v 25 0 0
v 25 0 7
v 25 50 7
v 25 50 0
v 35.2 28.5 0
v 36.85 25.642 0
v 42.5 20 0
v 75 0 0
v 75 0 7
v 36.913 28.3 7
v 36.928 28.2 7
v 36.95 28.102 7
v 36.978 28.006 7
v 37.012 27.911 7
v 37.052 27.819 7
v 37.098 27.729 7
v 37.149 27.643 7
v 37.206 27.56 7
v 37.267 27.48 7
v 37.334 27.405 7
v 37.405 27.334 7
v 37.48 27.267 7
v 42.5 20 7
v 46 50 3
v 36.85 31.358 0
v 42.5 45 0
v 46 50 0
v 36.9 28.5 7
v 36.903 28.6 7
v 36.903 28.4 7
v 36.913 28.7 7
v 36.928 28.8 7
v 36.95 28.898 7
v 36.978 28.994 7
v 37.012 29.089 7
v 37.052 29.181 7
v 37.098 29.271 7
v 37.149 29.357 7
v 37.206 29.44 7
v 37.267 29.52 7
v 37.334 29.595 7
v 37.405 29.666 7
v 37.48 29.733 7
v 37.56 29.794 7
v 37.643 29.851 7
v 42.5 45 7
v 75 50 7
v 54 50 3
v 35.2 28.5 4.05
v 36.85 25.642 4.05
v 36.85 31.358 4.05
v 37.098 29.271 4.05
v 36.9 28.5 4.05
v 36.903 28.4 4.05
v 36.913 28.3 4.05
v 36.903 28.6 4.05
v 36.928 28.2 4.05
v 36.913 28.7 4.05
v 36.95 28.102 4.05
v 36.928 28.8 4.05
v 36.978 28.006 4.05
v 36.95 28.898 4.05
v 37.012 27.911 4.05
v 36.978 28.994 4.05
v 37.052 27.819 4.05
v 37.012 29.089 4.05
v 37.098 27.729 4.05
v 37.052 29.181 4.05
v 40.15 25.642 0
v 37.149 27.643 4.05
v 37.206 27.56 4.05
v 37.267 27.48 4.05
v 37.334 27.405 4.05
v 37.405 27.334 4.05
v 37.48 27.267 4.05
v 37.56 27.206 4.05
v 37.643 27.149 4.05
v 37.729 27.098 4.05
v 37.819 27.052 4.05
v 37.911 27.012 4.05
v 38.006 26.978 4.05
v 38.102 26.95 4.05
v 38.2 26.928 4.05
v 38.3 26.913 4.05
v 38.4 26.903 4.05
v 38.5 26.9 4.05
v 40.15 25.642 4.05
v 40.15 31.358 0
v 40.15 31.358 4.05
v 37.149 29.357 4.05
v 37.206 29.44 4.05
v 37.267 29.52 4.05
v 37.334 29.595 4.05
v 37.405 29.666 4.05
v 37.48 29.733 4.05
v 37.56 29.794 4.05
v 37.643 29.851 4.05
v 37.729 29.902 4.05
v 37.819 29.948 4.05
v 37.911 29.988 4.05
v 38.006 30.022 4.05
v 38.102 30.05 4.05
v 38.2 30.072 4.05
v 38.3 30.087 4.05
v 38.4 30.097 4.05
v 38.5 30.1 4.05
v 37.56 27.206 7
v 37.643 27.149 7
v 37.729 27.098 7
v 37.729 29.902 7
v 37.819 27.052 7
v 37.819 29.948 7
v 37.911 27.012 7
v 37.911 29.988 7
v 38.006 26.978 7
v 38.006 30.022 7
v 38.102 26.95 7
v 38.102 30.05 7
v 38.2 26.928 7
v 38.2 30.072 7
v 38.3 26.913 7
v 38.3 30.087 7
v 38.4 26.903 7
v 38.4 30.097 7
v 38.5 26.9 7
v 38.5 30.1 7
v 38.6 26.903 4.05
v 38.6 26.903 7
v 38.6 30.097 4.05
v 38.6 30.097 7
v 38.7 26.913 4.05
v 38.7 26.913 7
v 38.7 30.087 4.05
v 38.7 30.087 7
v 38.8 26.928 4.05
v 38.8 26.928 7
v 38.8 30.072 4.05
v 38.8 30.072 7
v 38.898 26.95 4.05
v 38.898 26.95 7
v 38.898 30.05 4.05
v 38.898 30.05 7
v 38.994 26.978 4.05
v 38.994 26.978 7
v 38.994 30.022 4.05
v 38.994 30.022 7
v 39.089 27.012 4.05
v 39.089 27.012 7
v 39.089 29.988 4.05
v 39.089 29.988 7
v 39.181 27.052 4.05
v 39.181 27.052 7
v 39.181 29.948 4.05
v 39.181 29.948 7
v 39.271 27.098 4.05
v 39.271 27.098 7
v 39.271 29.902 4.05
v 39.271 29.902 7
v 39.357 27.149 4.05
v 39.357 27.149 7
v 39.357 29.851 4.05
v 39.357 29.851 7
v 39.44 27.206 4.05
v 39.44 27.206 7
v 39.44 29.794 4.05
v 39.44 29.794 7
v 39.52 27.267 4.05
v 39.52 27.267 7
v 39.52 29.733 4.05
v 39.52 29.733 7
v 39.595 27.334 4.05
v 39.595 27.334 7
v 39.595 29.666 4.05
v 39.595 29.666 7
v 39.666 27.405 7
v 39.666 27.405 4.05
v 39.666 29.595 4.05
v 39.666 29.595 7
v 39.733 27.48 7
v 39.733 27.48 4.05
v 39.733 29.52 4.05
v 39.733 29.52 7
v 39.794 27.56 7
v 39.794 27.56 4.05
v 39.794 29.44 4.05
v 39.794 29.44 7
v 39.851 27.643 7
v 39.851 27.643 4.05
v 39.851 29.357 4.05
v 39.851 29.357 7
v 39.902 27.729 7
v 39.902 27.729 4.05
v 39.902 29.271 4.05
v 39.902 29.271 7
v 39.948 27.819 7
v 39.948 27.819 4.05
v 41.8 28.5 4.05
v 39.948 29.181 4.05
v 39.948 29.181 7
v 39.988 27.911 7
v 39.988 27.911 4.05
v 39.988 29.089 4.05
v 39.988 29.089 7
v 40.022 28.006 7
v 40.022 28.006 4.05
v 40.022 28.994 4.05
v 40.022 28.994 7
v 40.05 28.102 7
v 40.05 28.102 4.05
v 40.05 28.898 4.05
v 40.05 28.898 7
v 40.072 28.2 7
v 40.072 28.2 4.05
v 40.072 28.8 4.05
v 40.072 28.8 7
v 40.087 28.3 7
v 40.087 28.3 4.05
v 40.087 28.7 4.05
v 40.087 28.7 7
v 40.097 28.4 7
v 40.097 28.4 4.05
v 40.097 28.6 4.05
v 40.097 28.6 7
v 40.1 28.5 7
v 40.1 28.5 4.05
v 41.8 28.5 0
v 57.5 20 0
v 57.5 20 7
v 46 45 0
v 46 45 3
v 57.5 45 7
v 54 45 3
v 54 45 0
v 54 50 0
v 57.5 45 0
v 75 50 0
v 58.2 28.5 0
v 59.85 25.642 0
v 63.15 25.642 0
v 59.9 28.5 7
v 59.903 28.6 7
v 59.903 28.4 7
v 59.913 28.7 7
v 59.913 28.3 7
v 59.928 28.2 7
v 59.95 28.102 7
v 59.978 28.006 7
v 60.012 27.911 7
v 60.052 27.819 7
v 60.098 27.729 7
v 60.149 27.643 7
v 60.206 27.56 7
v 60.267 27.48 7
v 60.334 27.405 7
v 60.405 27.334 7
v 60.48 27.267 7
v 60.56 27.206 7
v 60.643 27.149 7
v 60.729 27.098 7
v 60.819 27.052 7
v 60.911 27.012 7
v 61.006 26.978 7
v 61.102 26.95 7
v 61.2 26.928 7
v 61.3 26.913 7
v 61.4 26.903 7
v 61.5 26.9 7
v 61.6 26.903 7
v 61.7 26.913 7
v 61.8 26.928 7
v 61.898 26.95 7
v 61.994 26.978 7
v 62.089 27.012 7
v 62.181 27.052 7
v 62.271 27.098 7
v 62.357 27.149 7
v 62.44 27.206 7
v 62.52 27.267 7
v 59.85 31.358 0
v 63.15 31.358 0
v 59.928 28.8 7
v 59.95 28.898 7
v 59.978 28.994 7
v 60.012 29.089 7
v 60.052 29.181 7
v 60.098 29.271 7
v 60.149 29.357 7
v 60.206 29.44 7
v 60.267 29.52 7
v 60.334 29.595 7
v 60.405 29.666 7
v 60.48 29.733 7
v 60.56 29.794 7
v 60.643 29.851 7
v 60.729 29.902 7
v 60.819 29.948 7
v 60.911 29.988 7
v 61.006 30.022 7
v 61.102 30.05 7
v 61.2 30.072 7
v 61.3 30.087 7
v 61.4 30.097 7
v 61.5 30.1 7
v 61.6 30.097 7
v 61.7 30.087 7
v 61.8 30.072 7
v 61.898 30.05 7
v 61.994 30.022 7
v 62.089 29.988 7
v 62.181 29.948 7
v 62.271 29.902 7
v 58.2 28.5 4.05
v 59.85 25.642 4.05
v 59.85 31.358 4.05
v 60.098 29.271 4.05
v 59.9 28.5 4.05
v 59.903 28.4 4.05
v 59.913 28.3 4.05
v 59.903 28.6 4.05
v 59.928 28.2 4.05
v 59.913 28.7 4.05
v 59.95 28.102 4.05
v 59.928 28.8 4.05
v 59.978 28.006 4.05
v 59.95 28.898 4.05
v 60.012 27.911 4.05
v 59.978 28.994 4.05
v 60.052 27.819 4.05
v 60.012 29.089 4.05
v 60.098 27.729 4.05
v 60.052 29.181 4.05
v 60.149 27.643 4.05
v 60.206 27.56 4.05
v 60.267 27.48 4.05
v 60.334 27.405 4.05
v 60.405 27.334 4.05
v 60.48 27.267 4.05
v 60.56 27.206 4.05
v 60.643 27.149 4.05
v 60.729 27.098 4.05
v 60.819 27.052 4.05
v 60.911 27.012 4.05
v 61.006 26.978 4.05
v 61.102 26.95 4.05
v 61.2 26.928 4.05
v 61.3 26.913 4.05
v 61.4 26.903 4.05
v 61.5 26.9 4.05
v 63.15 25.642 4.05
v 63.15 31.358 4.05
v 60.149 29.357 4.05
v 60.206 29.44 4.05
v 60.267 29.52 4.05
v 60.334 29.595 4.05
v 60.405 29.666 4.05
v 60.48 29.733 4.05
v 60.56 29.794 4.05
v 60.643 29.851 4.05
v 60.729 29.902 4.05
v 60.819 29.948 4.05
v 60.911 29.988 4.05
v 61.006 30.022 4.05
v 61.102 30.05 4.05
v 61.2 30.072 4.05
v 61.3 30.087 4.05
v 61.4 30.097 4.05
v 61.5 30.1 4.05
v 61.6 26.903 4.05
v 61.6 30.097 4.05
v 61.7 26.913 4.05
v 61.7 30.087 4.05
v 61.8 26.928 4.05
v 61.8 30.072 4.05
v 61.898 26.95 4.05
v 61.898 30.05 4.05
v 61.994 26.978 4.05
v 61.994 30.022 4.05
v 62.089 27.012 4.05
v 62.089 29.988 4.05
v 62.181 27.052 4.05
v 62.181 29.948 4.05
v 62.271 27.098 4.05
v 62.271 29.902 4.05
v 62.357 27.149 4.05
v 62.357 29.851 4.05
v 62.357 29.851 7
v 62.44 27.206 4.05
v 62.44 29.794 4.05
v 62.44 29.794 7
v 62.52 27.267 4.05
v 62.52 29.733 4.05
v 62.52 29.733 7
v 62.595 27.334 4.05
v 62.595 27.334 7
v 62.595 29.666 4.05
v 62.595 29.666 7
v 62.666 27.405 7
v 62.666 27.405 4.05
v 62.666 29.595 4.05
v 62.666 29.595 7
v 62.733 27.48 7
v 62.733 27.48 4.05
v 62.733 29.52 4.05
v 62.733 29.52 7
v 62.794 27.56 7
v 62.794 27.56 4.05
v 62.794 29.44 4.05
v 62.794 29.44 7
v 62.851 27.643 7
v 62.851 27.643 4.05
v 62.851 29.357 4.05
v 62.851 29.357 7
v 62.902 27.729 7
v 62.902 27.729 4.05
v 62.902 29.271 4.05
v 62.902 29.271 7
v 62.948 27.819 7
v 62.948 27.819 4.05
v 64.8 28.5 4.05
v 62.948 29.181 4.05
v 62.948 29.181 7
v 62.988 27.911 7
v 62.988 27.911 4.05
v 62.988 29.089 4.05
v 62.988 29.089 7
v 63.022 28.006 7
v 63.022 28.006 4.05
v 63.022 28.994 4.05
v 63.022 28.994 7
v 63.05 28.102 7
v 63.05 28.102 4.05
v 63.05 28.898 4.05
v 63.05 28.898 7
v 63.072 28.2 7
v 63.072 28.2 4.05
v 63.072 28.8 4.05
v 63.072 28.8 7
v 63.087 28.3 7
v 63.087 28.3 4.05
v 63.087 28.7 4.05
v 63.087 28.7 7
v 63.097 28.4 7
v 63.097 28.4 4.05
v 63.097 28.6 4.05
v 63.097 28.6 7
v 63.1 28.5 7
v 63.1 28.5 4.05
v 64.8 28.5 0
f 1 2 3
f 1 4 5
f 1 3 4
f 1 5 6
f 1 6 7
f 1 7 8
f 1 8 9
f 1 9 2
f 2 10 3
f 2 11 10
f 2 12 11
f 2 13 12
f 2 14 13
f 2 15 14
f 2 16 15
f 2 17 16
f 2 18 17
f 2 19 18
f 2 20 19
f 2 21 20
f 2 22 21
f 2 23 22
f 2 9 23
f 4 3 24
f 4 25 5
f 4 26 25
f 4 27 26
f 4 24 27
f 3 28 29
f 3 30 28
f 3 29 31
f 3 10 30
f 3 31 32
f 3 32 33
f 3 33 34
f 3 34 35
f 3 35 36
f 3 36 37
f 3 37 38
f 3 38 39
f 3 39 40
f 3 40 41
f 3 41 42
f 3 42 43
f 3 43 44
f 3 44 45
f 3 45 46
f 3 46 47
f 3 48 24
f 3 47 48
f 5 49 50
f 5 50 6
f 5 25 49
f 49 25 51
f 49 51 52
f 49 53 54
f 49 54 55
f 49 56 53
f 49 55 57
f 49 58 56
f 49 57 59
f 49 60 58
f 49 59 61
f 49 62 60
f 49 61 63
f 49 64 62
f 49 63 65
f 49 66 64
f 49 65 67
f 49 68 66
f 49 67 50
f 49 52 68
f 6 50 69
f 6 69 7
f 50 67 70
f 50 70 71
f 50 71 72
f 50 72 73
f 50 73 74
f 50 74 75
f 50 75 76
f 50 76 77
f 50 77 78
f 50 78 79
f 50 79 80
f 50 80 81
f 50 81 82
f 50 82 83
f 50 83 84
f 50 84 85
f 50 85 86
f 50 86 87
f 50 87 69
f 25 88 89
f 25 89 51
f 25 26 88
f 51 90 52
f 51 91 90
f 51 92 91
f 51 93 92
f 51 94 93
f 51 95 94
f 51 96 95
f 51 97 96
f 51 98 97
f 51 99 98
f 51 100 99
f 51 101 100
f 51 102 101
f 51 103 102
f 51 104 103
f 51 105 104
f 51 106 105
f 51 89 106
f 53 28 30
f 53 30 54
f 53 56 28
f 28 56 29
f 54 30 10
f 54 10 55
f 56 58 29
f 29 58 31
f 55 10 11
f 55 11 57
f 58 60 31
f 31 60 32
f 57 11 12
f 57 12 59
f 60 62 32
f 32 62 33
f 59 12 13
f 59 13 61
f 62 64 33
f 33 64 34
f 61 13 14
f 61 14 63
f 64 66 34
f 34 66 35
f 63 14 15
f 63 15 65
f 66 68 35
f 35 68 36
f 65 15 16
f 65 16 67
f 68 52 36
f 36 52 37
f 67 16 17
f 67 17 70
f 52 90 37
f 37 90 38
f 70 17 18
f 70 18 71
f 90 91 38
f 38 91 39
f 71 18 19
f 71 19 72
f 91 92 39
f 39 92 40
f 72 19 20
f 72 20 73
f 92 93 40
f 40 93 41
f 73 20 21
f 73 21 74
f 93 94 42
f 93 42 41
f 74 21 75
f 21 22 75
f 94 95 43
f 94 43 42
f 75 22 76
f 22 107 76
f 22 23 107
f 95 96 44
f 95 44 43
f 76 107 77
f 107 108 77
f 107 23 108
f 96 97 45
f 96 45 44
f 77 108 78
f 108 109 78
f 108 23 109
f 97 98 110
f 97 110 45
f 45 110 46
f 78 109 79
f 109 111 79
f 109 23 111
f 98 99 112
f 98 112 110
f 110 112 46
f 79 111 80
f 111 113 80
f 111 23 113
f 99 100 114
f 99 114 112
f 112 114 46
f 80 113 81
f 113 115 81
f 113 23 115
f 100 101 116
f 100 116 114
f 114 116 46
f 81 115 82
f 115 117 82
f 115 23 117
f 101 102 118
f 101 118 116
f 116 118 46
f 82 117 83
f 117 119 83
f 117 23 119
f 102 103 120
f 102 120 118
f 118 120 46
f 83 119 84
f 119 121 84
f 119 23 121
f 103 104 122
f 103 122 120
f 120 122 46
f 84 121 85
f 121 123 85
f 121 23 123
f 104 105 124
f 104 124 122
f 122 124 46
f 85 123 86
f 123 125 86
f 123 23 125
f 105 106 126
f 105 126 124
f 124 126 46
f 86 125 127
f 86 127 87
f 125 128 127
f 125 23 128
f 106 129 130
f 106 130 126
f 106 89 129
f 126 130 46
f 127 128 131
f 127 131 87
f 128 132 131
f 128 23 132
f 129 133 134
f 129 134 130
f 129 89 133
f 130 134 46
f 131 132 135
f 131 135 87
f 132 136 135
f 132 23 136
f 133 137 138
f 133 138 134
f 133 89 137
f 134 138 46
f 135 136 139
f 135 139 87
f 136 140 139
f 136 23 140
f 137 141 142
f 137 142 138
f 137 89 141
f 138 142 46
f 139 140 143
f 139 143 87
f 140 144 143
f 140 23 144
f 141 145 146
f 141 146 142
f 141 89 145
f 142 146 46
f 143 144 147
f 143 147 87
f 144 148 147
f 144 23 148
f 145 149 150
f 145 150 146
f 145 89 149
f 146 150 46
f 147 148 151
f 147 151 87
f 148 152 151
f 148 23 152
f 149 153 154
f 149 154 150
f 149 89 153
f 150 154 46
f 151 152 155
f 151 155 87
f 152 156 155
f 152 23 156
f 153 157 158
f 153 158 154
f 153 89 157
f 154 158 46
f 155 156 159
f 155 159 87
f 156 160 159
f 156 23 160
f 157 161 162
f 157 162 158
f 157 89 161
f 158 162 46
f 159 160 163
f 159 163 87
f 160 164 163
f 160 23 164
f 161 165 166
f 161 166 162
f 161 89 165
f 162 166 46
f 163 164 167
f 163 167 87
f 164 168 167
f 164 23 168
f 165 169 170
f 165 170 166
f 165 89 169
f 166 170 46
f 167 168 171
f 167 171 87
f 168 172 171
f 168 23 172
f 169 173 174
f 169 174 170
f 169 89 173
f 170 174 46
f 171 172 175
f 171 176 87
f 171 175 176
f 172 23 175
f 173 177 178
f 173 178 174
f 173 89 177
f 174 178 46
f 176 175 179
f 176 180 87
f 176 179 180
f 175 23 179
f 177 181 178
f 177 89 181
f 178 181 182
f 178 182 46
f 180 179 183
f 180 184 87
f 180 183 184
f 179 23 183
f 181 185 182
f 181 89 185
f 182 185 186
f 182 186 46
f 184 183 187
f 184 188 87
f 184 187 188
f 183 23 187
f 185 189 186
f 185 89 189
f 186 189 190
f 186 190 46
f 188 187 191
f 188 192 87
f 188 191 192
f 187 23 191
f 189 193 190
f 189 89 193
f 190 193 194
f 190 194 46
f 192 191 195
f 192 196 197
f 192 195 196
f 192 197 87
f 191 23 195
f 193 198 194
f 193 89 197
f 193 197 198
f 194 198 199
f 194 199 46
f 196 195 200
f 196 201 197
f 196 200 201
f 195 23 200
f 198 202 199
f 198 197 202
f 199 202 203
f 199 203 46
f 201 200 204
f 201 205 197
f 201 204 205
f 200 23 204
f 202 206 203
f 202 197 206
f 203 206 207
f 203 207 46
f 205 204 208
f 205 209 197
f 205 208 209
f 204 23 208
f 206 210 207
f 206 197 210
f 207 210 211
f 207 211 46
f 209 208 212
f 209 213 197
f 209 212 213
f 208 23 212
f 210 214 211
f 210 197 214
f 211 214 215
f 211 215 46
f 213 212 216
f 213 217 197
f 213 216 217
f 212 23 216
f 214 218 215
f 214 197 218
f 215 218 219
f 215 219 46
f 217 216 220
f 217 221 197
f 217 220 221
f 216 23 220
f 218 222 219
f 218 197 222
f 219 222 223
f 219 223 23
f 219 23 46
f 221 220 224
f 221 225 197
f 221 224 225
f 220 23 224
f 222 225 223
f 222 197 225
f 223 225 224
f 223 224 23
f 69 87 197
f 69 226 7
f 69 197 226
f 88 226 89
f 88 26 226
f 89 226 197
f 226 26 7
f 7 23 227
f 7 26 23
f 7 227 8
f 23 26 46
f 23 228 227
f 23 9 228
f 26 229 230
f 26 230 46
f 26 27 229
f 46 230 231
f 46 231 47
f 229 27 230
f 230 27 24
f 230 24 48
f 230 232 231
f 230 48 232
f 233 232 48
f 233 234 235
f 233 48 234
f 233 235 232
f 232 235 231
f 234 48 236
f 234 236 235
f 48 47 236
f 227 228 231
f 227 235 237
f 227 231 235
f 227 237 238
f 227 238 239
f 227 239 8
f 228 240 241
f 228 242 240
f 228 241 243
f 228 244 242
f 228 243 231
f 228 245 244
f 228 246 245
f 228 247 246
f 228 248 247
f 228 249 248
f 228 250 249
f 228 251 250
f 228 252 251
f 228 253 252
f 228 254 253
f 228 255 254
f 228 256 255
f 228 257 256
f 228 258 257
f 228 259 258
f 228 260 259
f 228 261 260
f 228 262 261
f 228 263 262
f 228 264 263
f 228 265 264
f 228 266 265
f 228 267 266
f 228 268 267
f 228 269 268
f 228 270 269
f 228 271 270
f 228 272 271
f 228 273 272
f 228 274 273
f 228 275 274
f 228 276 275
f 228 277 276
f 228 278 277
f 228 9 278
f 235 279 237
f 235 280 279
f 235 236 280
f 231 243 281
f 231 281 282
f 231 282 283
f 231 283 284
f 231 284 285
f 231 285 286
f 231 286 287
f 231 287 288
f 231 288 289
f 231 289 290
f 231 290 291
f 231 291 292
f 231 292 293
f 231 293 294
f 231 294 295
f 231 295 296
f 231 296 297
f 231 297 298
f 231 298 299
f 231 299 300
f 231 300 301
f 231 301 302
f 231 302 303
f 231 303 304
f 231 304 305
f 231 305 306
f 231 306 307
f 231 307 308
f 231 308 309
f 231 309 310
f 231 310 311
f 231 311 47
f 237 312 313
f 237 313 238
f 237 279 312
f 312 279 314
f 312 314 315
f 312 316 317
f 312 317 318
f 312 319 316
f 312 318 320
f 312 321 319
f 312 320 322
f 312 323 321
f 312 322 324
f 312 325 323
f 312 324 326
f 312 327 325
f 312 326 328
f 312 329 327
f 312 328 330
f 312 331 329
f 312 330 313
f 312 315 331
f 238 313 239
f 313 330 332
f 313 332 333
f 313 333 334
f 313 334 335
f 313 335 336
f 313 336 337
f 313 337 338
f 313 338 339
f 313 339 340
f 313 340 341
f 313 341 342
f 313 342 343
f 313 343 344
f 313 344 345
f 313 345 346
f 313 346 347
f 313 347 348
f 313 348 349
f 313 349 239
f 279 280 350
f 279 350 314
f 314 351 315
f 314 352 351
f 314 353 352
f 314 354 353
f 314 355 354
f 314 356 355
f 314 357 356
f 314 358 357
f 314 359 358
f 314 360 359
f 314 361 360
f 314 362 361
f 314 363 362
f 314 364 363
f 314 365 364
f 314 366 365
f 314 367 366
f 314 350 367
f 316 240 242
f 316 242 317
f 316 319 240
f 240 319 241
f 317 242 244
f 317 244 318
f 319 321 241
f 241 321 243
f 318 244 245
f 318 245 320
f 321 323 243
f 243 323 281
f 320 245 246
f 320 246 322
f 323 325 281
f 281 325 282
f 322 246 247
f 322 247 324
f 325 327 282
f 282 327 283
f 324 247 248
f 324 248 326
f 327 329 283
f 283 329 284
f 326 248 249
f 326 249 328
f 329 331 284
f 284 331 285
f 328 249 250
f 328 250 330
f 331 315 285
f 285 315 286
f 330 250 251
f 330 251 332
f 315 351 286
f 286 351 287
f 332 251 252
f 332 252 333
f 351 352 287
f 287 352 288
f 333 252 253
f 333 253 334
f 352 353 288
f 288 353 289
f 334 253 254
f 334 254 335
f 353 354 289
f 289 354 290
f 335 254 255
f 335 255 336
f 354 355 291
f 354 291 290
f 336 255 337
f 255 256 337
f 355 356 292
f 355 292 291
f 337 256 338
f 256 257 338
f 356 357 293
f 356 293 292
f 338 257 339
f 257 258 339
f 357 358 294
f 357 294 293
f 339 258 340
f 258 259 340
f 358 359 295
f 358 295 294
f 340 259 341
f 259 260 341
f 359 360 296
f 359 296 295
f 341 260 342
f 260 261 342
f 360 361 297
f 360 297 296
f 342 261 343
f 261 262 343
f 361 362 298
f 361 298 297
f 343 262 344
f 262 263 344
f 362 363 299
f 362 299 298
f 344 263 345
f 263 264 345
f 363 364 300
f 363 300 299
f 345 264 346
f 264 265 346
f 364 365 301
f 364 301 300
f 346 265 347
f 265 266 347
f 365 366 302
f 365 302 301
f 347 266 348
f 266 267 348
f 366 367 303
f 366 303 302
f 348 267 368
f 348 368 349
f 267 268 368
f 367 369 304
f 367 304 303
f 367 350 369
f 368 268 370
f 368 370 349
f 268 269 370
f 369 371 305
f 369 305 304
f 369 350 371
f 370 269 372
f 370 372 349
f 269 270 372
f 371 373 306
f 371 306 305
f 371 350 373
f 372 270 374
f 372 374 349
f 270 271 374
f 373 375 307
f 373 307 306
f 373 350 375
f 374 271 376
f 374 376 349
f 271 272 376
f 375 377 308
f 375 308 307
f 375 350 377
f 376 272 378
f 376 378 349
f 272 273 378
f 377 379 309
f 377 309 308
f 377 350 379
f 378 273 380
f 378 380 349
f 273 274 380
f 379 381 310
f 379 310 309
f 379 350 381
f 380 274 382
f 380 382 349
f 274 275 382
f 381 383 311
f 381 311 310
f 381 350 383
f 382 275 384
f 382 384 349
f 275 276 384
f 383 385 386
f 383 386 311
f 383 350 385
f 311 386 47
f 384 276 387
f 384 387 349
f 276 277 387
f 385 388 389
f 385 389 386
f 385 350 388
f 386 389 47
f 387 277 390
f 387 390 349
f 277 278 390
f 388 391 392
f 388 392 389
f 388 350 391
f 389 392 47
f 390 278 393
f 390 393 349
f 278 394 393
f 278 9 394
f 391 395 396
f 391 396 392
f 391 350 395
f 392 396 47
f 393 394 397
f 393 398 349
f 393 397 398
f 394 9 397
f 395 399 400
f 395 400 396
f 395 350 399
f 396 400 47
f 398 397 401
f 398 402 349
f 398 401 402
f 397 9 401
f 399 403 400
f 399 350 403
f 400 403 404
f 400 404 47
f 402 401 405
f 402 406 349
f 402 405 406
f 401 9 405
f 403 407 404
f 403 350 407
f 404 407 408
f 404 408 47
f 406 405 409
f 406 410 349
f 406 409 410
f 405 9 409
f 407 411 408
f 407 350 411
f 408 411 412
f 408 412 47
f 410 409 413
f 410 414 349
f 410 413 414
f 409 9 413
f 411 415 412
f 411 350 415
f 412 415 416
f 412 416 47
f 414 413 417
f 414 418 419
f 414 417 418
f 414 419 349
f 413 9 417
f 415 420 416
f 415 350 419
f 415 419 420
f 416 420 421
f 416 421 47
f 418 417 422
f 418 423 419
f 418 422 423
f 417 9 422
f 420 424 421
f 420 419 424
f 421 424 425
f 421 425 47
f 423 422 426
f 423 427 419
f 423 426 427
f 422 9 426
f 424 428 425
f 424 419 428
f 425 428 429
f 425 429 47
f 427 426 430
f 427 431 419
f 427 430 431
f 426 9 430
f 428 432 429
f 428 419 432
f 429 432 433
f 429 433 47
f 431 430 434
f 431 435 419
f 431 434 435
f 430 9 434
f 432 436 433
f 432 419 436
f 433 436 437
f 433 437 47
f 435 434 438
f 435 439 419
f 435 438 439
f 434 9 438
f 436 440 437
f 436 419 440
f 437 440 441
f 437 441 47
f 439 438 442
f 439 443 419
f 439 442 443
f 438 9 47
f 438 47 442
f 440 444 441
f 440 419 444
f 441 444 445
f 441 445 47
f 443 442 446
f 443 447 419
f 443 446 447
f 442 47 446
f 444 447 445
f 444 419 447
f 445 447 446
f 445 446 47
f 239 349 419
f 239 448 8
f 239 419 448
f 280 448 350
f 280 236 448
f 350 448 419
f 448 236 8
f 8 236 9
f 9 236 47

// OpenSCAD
include <../parameters.scad>

//podlozka

//velikost zakladny 
length = 50;
width = 50;
height = 7;

//dira pro srouby
lengthscrew=10;
indentationscrewhole=28.5;
indentationcubehole=32.5;
pitchleft= 38.5;
pitchright=61.5;

//vyrez pro zapojeni
cubelength=25;
cubewidth=15;
cubeheight=10;

//privodni drat
chanelwidth=8;
chanellength=45;
chanelheight=4;

difference(){
    translate([50, width/2, height/2])
    cube(size = [length,width,height], center = true);
//pruchod pro srouby
    translate([pitchleft, indentationscrewhole, 0])
        cylinder(h = lengthscrew, d = M3_screw_diameter, $fn=100);
    
    translate([pitchright, indentationscrewhole, 0])
        cylinder(h = lengthscrew, d = M3_screw_diameter, $fn=100);
//vyrez pro pripojeni
    translate([50, indentationcubehole, 5])
        cube(size = [cubewidth,cubelength,cubeheight], center = true);
    
//prohluben pro matky
    translate([pitchright, indentationscrewhole, 0])
     cylinder(h = M3_nut_height*1.5, d = M3_nut_diameter, $fn=6);
    translate([pitchleft, indentationscrewhole, 0])
     cylinder(h = M3_nut_height*1.5, d = M3_nut_diameter, $fn=6);
//privodni drat
    translate([50, 67.5, 1])
        rotate([0,0,90]){  
            cube(size=[chanellength,chanelwidth, chanelheight], center = true);
                        }
};
